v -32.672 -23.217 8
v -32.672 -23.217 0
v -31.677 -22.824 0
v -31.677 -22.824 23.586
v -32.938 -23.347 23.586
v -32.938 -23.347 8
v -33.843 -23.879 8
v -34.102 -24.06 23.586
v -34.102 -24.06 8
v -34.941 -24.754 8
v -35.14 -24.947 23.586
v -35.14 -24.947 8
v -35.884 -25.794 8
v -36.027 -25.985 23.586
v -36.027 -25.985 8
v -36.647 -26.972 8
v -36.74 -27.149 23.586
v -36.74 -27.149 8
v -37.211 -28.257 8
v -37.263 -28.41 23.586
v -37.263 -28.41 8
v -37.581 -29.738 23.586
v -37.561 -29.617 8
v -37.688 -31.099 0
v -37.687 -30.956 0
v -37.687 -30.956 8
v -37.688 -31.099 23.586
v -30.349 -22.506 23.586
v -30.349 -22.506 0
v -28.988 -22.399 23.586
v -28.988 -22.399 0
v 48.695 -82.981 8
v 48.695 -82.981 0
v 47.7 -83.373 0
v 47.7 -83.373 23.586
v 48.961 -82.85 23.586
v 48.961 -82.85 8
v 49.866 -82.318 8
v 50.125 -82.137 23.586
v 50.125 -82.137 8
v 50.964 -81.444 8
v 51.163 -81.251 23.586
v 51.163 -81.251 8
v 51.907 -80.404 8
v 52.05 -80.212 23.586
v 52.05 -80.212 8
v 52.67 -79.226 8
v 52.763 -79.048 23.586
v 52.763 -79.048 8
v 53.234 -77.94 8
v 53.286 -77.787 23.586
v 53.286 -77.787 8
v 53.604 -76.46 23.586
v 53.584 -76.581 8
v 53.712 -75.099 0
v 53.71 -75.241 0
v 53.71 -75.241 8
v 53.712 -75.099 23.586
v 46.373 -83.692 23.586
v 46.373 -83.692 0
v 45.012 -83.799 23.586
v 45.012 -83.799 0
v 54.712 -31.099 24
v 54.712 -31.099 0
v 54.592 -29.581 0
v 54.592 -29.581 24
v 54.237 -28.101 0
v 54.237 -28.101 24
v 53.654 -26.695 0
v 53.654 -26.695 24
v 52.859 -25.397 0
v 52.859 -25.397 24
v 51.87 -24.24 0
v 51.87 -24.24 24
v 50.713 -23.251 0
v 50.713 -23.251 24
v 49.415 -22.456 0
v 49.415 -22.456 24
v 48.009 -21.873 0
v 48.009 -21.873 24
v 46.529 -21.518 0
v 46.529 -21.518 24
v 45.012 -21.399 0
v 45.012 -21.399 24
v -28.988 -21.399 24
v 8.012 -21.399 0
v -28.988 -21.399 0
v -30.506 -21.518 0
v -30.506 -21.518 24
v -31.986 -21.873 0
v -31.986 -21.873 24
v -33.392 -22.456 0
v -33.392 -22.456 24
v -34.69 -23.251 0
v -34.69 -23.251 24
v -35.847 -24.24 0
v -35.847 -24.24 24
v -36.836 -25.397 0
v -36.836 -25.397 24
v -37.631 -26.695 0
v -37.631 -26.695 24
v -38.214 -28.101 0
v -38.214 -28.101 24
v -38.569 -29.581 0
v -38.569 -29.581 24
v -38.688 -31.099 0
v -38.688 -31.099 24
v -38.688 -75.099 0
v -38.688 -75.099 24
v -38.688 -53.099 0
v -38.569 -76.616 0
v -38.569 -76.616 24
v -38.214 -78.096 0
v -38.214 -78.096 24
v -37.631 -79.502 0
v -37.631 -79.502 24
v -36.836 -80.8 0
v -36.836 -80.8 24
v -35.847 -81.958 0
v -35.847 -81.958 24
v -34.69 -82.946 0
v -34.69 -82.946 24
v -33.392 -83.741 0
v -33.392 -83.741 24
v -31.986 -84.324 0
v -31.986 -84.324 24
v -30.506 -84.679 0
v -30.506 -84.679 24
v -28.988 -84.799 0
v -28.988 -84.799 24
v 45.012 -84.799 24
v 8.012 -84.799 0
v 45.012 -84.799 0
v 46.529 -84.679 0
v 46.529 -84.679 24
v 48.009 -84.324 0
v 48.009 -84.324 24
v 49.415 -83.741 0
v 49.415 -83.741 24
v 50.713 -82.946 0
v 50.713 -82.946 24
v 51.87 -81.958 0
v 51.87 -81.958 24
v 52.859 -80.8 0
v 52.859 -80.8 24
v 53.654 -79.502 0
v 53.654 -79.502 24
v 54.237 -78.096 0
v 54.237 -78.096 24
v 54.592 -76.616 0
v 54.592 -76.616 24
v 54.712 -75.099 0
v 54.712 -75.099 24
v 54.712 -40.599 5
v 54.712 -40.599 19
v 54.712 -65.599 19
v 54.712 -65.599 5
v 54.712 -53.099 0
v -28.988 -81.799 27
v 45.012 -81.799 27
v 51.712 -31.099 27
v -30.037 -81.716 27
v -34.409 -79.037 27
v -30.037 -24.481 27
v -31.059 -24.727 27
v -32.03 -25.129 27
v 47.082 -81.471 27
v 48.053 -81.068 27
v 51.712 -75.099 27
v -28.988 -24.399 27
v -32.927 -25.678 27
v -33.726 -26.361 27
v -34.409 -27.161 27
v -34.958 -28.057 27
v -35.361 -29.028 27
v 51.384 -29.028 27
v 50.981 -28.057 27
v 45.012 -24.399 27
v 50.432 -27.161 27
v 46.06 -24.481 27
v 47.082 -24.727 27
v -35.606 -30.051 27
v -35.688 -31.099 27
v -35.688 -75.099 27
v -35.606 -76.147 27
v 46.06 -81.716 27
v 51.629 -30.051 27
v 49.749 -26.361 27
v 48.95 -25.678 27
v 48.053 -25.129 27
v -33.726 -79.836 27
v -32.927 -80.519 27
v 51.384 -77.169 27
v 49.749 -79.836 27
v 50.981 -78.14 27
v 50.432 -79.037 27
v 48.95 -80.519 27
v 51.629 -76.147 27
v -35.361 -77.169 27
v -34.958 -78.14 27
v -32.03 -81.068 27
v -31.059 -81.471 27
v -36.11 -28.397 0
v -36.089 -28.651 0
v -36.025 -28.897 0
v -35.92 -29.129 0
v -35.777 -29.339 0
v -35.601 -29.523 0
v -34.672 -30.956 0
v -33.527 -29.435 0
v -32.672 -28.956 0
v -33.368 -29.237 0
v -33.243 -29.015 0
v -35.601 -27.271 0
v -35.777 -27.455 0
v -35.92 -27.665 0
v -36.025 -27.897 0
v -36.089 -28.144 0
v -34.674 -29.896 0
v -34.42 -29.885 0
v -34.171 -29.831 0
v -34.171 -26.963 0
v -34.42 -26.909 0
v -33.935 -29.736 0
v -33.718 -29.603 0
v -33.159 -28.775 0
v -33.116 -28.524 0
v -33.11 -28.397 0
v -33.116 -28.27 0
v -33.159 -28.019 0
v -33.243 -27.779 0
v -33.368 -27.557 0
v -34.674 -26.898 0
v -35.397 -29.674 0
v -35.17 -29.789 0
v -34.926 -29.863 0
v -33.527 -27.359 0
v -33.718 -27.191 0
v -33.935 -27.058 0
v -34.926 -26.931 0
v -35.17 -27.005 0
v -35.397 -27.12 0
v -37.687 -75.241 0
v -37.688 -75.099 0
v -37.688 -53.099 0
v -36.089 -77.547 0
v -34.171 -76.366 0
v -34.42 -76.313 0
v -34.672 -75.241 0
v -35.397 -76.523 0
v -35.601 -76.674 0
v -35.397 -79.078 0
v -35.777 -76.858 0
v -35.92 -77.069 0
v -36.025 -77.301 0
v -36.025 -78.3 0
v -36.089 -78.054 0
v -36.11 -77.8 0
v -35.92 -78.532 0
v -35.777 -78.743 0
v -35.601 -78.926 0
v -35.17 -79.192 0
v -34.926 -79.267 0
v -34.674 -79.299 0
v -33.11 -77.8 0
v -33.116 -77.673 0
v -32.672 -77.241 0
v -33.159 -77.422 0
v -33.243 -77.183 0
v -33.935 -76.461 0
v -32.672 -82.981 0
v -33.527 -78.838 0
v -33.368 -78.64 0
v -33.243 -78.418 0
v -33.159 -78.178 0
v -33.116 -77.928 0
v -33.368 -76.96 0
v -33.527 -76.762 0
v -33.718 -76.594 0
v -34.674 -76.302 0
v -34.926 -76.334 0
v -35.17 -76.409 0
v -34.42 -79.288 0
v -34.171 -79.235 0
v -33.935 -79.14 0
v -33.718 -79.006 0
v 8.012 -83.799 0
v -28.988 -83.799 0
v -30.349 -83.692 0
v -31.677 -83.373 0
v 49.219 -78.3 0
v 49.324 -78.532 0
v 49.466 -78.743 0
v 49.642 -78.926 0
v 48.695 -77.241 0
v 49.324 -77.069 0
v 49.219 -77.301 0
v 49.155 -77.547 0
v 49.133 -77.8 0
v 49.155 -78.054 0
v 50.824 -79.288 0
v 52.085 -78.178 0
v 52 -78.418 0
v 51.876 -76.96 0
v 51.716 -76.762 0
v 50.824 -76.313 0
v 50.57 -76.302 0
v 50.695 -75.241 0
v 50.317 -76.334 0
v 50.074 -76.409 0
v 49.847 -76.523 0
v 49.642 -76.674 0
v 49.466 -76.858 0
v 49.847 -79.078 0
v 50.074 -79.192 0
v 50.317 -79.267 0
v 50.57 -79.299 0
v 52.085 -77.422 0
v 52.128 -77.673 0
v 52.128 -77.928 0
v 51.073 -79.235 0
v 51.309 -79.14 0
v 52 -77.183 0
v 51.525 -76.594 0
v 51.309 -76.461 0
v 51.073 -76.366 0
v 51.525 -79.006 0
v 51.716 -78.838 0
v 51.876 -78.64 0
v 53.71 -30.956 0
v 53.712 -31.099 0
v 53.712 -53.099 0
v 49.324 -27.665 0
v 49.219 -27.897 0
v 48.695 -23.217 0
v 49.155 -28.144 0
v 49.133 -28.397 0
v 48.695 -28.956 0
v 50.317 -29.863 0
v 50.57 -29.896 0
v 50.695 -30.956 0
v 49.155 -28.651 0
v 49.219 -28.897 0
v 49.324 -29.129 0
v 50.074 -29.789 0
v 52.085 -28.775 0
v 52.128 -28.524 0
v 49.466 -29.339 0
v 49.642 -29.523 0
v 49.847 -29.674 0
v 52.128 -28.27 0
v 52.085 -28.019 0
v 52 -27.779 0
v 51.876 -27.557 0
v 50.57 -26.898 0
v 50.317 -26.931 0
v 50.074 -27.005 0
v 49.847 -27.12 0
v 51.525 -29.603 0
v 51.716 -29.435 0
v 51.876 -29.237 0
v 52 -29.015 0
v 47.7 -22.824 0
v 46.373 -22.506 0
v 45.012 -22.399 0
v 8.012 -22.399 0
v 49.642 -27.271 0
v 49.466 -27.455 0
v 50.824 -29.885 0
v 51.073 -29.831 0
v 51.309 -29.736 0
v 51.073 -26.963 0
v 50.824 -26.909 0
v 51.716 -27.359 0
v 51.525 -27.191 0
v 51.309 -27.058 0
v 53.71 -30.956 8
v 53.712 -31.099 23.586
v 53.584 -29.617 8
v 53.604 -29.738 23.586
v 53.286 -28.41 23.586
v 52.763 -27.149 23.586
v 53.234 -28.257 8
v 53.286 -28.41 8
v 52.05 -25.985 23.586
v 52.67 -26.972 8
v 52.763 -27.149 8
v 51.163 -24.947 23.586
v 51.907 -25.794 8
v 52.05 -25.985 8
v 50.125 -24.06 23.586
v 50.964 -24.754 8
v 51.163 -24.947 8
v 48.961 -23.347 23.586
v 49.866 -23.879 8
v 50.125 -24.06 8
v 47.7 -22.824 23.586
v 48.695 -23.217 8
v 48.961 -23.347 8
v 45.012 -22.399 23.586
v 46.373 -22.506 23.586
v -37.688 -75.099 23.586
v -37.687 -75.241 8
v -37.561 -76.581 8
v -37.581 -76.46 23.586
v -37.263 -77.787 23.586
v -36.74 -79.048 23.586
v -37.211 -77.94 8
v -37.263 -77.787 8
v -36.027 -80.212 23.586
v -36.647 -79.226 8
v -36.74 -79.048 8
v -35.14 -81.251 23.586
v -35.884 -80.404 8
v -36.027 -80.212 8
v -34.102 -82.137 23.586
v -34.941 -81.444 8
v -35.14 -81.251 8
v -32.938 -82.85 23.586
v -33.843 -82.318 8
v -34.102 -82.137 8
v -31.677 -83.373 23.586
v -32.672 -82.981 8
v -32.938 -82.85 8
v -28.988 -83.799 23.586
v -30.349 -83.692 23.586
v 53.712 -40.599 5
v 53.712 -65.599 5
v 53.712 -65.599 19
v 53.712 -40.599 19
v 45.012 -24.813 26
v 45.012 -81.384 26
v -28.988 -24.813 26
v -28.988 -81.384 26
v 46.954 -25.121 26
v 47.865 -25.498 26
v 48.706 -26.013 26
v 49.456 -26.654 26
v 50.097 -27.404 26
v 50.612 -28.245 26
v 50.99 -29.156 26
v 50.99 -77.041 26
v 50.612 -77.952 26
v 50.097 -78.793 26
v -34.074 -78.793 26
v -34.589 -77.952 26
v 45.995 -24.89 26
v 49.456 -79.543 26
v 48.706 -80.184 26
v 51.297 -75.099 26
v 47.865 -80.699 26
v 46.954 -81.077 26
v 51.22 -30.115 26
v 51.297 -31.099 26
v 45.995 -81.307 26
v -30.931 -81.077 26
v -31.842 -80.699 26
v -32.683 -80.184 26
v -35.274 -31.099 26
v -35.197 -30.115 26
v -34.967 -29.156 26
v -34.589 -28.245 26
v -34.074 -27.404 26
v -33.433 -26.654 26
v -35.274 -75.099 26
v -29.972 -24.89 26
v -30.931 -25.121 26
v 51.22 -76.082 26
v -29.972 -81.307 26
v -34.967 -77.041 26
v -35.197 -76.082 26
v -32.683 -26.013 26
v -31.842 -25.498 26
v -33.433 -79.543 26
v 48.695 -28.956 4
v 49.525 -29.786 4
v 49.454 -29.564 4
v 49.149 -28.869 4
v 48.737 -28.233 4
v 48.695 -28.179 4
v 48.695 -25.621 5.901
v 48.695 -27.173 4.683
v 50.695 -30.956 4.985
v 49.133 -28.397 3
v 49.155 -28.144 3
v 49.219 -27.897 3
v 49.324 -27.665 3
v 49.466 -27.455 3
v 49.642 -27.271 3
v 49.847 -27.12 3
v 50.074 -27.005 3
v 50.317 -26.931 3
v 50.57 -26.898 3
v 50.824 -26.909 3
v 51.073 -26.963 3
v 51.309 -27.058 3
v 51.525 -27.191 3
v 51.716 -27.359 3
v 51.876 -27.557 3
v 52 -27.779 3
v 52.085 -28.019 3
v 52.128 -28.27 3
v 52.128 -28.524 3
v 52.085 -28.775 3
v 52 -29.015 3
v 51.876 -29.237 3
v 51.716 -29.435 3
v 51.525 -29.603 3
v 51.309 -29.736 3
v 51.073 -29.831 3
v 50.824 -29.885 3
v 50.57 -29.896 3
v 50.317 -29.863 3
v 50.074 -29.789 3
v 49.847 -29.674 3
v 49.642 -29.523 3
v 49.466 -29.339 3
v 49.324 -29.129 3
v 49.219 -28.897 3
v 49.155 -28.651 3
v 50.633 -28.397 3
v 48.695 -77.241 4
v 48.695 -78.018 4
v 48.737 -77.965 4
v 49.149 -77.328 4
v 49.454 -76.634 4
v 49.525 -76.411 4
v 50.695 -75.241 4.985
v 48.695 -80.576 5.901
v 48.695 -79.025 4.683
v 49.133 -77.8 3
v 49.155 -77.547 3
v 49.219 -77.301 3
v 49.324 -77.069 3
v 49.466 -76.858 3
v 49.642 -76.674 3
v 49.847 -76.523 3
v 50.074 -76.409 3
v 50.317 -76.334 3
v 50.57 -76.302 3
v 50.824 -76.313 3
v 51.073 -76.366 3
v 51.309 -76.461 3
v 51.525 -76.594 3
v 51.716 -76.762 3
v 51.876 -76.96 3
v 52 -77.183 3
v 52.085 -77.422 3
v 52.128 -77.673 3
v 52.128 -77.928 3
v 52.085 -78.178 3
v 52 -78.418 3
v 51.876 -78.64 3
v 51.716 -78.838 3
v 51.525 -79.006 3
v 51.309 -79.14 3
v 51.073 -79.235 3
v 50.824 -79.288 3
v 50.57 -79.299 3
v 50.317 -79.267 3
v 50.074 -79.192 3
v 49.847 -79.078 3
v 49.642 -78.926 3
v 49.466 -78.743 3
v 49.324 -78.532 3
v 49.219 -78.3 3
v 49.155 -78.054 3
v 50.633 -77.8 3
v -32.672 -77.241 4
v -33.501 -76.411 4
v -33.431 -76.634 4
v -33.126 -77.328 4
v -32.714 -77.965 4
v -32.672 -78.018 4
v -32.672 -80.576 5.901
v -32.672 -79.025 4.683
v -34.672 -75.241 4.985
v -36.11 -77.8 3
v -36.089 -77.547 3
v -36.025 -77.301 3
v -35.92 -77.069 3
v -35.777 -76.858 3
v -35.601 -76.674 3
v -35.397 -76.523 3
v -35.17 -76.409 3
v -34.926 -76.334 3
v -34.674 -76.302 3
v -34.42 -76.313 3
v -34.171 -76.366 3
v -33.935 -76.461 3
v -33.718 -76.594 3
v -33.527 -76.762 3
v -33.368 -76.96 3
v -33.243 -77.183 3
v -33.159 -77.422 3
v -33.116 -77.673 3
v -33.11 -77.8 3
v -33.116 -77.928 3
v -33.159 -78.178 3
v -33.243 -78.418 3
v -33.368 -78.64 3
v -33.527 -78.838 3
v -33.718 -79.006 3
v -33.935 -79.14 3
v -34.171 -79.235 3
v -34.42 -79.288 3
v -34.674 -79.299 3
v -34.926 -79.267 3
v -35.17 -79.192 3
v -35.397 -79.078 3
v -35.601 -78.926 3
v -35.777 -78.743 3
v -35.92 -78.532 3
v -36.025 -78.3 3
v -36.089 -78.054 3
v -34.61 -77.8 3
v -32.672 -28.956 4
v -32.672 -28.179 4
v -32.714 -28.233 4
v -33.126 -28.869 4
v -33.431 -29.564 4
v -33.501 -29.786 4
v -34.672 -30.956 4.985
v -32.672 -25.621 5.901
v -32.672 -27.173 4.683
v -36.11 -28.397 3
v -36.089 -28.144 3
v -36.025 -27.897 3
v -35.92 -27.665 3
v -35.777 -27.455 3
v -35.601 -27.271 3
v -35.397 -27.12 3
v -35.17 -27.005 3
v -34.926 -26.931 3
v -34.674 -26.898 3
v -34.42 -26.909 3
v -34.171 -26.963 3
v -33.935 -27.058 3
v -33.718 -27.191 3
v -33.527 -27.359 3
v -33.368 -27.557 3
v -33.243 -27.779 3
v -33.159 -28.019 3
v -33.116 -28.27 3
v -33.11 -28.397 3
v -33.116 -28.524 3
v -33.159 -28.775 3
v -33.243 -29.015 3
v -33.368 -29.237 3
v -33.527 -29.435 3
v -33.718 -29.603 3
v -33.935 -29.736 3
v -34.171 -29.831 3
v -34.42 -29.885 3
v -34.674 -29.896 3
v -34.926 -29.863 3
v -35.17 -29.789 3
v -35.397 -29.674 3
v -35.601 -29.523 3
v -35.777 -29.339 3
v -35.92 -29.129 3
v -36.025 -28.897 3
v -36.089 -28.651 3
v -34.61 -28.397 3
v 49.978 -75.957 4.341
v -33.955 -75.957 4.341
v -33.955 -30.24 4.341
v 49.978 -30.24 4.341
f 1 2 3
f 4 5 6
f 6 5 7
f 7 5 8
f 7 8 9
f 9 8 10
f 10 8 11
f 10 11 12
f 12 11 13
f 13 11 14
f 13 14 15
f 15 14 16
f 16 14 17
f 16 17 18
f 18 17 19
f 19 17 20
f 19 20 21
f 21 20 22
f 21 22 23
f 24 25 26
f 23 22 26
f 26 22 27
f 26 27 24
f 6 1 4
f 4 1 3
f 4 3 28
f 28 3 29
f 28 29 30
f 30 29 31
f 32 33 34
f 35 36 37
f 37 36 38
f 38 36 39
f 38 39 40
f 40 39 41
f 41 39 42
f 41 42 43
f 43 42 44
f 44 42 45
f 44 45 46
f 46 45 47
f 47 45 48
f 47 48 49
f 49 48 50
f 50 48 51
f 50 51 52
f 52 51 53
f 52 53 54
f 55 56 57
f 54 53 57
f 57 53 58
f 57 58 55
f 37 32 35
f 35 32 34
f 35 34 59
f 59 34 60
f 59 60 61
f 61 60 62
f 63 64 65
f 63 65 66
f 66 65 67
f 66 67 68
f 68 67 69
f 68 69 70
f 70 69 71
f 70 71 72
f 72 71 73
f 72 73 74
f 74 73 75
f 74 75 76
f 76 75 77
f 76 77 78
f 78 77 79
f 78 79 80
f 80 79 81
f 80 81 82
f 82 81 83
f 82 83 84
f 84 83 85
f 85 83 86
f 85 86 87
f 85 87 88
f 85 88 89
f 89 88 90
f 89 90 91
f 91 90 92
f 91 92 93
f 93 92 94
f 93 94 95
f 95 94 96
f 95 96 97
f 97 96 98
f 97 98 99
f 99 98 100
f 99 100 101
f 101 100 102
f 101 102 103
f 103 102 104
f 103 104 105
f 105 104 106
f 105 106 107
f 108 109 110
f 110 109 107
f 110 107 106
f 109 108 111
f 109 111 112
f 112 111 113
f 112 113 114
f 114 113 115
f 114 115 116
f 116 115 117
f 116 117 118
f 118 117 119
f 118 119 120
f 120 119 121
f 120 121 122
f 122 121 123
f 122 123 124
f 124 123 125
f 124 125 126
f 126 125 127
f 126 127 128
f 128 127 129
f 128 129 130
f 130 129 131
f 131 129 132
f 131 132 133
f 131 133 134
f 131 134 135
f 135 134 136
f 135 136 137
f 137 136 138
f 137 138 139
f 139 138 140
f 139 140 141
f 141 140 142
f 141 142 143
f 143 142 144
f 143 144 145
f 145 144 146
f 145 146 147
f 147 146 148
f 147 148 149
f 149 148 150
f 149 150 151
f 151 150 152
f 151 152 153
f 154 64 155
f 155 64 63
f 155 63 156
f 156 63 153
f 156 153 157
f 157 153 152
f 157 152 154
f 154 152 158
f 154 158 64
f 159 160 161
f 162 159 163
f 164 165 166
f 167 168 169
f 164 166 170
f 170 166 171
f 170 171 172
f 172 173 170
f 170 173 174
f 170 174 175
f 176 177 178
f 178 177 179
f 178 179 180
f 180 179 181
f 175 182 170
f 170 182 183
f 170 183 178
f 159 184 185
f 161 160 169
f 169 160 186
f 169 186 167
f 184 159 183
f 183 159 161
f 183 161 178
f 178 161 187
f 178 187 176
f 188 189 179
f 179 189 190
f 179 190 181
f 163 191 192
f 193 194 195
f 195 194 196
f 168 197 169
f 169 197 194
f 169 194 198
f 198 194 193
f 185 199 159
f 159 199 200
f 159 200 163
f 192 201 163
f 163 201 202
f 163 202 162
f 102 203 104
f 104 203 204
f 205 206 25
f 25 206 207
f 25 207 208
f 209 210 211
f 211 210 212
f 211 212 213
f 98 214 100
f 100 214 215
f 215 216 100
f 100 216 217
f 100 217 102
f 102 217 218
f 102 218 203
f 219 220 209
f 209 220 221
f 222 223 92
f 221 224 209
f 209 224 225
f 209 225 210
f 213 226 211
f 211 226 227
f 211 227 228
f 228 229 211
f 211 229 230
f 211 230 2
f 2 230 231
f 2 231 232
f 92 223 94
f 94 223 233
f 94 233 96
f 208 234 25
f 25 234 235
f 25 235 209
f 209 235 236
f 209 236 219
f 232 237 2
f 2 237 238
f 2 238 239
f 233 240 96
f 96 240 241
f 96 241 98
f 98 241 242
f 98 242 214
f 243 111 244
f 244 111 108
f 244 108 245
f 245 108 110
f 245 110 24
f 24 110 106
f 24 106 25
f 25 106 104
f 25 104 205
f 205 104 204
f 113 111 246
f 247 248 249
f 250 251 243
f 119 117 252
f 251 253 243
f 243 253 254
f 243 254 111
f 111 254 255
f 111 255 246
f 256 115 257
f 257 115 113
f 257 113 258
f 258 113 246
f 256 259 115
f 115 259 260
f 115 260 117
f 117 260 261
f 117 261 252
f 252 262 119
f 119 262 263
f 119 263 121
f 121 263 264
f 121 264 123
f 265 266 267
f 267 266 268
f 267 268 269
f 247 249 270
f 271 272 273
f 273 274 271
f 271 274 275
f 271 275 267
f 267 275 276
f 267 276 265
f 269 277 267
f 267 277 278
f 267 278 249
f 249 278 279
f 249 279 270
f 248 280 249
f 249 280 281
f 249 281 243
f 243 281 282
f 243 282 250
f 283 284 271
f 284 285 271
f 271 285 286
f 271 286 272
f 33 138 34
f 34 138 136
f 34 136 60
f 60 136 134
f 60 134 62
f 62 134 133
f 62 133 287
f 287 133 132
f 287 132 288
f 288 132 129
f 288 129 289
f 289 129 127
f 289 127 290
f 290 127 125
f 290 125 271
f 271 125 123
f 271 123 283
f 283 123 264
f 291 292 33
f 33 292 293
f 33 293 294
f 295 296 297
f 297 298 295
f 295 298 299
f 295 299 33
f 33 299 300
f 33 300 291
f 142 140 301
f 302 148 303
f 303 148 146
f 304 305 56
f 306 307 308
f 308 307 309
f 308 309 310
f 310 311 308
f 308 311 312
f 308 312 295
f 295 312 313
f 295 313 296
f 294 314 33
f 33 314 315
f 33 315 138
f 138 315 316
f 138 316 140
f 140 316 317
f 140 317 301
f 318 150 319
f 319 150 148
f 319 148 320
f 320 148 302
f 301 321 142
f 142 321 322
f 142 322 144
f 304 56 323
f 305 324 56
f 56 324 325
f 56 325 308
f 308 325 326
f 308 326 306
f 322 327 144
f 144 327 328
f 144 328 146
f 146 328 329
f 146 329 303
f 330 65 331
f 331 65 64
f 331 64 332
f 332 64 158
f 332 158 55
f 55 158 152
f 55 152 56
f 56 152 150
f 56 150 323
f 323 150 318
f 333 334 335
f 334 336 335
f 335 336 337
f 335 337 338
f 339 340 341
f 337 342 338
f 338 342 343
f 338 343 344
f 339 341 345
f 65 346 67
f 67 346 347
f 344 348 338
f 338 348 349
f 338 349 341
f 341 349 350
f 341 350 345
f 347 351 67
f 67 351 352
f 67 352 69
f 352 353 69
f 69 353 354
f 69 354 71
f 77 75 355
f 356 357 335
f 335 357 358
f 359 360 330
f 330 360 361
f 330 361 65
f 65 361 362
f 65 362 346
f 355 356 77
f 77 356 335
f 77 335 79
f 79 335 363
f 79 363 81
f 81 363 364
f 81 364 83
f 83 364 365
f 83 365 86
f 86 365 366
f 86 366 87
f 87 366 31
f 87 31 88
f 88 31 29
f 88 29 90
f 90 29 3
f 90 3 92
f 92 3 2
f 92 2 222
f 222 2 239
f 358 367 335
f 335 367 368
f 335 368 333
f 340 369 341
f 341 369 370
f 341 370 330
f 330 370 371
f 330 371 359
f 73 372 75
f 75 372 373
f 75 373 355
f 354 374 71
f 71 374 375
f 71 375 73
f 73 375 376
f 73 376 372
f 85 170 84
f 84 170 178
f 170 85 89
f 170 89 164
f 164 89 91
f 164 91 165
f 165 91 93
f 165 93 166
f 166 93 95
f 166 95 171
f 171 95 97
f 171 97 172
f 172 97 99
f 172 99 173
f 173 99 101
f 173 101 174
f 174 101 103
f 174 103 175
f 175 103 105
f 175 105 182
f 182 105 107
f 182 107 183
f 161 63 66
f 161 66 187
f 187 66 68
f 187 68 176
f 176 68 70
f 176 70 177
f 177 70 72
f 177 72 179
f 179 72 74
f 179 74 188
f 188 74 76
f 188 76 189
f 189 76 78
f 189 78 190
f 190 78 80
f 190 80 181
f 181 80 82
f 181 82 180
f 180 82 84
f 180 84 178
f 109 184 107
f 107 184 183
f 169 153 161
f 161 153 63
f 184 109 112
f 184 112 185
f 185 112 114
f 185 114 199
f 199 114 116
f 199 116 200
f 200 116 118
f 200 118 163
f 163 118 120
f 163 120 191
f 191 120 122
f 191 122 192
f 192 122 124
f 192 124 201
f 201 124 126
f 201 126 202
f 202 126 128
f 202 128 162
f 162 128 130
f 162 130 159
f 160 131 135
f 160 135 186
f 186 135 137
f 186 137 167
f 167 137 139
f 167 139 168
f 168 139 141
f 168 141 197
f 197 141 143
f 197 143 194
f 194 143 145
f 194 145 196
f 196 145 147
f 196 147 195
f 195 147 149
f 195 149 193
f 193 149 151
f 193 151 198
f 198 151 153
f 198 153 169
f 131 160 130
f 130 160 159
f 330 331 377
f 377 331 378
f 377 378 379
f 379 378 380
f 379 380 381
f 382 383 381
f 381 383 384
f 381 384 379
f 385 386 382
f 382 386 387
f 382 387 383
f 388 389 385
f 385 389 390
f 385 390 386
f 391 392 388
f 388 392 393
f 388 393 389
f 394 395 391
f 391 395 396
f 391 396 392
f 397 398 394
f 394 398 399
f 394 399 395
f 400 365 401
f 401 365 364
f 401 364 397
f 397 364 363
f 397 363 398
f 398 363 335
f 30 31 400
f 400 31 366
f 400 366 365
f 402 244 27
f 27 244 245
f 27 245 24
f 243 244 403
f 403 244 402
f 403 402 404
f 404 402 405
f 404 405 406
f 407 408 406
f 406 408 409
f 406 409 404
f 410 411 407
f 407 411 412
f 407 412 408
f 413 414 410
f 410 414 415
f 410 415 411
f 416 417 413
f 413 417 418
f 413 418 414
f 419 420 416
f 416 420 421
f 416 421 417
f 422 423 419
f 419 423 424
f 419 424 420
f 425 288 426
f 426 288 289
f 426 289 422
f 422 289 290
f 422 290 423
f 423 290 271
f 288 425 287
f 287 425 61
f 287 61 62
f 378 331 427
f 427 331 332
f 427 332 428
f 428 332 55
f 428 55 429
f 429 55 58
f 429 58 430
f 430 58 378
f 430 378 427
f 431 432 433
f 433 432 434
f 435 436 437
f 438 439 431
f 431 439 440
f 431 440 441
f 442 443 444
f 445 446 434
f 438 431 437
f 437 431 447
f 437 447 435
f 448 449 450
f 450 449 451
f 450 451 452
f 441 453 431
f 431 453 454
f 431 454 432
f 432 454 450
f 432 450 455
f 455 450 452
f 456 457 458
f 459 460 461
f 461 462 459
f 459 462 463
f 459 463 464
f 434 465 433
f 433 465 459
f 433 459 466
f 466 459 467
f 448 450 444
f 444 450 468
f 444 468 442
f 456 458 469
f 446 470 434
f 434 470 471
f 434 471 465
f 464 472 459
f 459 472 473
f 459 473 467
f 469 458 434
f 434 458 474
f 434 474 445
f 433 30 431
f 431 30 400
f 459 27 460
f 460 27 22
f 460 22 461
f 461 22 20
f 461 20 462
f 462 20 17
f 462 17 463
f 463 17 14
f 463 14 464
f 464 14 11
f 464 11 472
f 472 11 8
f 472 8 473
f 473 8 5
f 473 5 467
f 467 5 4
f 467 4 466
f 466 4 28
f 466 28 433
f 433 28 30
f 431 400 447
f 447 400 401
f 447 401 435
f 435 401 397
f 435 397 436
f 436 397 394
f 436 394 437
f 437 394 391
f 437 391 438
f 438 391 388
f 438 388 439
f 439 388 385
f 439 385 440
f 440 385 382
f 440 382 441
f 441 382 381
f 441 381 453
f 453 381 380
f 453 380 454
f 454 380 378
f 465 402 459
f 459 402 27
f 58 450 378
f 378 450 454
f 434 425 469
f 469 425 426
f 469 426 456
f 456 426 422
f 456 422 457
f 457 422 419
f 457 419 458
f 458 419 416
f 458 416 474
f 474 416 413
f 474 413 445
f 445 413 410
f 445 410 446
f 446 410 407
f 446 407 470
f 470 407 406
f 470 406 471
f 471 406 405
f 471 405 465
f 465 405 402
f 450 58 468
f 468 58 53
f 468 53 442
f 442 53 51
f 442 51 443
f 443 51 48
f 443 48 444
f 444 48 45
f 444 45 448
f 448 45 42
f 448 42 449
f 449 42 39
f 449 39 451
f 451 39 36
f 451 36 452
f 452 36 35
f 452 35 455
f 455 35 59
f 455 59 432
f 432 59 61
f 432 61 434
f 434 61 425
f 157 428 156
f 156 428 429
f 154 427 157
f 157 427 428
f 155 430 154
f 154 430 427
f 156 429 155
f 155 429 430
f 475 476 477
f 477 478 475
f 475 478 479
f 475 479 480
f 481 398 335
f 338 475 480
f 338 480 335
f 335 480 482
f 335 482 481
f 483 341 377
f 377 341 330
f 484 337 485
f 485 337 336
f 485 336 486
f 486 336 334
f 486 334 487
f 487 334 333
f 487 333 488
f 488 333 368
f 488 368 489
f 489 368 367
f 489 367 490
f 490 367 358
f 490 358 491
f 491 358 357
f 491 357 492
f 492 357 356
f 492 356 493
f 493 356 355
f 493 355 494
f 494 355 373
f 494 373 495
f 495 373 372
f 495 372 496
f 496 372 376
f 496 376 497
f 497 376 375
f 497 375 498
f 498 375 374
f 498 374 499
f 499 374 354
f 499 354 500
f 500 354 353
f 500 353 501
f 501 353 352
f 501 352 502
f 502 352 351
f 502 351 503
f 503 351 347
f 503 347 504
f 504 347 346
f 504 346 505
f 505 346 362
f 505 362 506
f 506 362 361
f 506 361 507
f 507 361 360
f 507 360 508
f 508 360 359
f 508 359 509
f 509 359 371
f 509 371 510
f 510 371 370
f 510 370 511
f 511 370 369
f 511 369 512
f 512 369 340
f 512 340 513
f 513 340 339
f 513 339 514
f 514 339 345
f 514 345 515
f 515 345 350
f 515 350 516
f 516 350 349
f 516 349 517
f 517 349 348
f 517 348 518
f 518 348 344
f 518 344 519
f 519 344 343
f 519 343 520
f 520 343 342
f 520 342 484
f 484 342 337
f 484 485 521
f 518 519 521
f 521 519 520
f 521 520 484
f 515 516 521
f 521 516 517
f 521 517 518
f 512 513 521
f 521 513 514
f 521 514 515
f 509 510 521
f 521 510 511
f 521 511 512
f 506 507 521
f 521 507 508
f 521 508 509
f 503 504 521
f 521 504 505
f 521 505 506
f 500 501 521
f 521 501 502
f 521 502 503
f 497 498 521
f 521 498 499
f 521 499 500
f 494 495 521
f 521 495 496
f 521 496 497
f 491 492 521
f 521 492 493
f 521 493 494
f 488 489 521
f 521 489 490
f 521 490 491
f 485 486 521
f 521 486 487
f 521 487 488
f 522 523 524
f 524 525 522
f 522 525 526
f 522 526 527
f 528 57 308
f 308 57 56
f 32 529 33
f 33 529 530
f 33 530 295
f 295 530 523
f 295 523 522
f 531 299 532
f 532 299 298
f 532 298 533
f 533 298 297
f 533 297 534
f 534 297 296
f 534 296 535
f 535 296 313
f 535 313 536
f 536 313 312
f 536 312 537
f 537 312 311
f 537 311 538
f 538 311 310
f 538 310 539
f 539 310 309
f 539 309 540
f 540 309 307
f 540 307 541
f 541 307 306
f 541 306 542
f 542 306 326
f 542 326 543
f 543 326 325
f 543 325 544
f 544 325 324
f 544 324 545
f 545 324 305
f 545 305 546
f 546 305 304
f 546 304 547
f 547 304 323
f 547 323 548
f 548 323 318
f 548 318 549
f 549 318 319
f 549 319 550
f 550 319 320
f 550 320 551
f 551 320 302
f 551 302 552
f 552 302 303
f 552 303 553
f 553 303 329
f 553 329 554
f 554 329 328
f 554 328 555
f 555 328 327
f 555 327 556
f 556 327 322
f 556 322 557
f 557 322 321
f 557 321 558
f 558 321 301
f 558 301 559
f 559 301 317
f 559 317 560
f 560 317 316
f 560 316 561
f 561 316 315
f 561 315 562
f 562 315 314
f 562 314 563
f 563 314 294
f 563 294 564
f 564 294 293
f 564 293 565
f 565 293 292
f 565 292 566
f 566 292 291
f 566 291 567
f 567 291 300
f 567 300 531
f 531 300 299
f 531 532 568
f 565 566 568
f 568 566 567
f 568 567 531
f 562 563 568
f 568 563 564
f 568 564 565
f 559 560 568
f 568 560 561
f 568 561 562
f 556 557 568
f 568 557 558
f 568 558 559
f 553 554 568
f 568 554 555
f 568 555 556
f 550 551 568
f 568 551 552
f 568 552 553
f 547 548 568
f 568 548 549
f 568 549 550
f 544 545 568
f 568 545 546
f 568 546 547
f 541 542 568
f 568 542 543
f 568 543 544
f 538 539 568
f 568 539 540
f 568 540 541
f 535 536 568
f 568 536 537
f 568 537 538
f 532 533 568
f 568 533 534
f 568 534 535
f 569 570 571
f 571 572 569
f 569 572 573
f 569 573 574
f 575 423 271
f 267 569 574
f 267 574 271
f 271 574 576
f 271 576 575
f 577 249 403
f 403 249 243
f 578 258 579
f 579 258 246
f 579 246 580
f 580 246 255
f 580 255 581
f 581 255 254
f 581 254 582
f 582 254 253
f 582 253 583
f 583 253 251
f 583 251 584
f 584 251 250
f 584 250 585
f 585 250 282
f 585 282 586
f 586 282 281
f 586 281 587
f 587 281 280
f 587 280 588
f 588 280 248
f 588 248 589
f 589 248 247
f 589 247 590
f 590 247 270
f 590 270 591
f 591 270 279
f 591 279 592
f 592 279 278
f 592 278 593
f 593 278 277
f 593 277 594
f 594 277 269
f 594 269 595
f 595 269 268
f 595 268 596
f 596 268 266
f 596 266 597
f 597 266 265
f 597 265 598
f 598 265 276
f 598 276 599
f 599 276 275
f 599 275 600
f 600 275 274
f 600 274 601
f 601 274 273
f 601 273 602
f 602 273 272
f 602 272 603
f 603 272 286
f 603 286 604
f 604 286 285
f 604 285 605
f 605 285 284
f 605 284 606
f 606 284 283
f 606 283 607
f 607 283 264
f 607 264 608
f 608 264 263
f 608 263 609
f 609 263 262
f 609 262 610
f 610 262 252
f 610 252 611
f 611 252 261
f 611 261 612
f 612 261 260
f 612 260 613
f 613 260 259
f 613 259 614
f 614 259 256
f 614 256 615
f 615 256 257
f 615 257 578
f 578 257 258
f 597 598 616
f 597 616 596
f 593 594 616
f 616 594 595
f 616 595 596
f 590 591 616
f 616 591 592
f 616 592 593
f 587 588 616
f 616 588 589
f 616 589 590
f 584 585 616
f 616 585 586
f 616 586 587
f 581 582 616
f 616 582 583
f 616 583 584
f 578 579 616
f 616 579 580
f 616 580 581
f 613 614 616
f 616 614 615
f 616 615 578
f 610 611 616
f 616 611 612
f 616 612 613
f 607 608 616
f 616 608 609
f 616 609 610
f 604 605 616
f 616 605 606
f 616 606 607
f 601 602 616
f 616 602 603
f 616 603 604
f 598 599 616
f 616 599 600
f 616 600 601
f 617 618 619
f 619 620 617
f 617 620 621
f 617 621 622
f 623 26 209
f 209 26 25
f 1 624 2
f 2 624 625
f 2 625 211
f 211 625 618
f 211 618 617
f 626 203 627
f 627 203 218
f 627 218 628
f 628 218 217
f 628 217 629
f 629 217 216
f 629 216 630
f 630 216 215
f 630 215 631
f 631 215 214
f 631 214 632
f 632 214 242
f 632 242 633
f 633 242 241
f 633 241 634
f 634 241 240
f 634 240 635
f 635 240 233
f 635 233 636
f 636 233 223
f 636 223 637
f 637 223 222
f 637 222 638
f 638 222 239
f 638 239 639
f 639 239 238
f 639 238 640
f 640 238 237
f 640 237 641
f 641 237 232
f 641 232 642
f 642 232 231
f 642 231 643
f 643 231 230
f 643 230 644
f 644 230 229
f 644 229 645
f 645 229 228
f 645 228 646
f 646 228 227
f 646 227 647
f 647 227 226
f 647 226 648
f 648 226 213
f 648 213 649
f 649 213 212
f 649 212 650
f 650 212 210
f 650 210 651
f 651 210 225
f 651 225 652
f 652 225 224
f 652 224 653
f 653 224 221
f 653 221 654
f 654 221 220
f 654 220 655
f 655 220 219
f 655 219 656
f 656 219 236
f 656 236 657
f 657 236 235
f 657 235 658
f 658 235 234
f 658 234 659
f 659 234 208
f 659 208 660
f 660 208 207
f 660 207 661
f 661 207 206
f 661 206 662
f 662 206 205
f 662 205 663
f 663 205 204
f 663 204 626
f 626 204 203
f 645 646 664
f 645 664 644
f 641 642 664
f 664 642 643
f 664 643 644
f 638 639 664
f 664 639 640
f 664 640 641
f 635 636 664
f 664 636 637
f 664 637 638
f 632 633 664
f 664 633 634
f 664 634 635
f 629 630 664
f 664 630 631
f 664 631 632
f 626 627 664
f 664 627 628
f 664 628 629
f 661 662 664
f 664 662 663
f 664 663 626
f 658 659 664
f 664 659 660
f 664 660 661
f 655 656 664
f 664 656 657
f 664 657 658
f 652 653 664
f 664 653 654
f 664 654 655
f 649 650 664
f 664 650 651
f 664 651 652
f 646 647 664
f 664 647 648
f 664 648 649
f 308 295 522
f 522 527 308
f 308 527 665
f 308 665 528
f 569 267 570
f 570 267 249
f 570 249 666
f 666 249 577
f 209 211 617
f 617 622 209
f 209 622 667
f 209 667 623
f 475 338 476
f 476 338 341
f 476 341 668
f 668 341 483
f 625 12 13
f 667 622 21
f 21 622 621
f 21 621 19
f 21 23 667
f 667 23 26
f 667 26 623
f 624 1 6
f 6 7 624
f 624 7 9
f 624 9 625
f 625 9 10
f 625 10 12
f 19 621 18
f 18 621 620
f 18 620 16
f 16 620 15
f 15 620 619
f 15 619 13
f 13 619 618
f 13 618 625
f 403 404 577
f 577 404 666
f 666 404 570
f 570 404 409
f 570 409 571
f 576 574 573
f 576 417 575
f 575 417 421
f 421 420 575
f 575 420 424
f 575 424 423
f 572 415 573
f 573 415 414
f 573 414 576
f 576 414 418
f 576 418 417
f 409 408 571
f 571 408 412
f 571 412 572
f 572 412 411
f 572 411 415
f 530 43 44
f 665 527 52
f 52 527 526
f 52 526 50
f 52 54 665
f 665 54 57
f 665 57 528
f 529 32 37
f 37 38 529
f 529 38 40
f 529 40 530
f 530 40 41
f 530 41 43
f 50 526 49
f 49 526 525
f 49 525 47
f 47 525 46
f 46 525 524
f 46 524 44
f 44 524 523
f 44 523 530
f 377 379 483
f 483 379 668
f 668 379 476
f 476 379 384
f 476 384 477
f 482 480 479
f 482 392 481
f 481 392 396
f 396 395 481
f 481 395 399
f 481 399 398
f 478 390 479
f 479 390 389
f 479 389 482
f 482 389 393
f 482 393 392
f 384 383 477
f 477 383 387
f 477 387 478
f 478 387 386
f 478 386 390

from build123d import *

# Parameters (mm, degrees)
BOSS_EXTRUDE1_DEPTH     = 27
CHAMFER1_SIZE           = 3
SHELL1_T                = -1
CUT_EXTRUDE1_REACH      = 131.009
SKETCH2_W               = 14
SKETCH2_H               = 25
BOSS_EXTRUDE2_DEPTH     = 4
SKETCH7_R               = 1.5
CUT_EXTRUDE2_DEPTH      = 3
MIRROR2_COPY_1_DEPTH    = 4
MIRROR2_COPY_2_SKETCH_R = 1.5
MIRROR2_COPY_2_DEPTH    = 3
CHAMFER2_SIZE           = 2
CHAMFER3_SIZE           = 4


with BuildPart() as part:
    # Sketch1 → Boss-Extrude1 (new body)
    with BuildSketch(Plane.XY):
        with BuildLine():
            Line((54.711561383, -75.098685124), (54.711561383, -31.098685124))
            ThreePointArc((54.711561383, -31.098685124), (51.87049716, -24.239749346), (45.011561383, -21.398685124))
            Line((45.011561383, -21.398685124), (-28.988438617, -21.398685124))
            ThreePointArc((-28.988438617, -21.398685124), (-35.847374395, -24.239749346), (-38.688438617, -31.098685124))
            Line((-38.688438617, -31.098685124), (-38.688438617, -75.098685124))
            ThreePointArc((-38.688438617, -75.098685124), (-35.847374395, -81.957620901), (-28.988438617, -84.798685124))
            Line((-28.988438617, -84.798685124), (45.011561383, -84.798685124))
            ThreePointArc((45.011561383, -84.798685124), (51.87049716, -81.957620901), (54.711561383, -75.098685124))
        make_face()
    extrude(amount=BOSS_EXTRUDE1_DEPTH)

    # Chamfer1
    chamfer1_edges = [part.edges().sort_by_distance(p)[0] for p in [
        (-35.847374395, -24.239749346, 27),
        (-38.688438617, -53.098685124, 27),
        (-35.847374395, -81.957620901, 27),
        (8.011561383, -84.798685124, 27),
        (51.87049716, -81.957620901, 27),
        (54.711561383, -53.098685124, 27),
        (51.87049716, -24.239749346, 27),
        (8.011561383, -21.398685124, 27),
    ]]
    chamfer(chamfer1_edges, length=CHAMFER1_SIZE)

    # Shell1
    shell1_openings = [part.faces().sort_by_distance(p)[0] for p in [
        (8.011561383, -53.098685124, 0),
    ]]
    offset(amount=SHELL1_T, openings=shell1_openings, kind=Kind.INTERSECTION)

    # Sketch2 → Cut-Extrude1 (cut, up to next)
    with BuildSketch(Plane(origin=(54.711561383, 0, 0), x_dir=(0, 0, -1), z_dir=(1, 0, 0)), mode=Mode.PRIVATE) as cut_extrude1_sk1:
        with Locations((-12, -53.098685124)):
            Rectangle(SKETCH2_W, SKETCH2_H)
    cut_extrude1_tool1 = extrude(cut_extrude1_sk1.sketch, amount=-CUT_EXTRUDE1_REACH, mode=Mode.PRIVATE) & part.part
    add(cut_extrude1_tool1.solids().sort_by_distance((54.711561, -53.098685, 12))[0], mode=Mode.SUBTRACT)

    # Sketch3 → Boss-Extrude2 (add)
    with BuildSketch(Plane(origin=(0, 0, 0), x_dir=(-1, 0, 0), z_dir=(0, 0, -1))):
        with BuildLine():
            Line((-54.118192185, -30.956291213), (-48.694716552, -30.956291213))
            Line((-48.694716552, -30.956291213), (-48.694716552, -23.033750656))
            ThreePointArc((-48.694716552, -23.033750656), (-52.633018075, -26.155361191), (-54.118192185, -30.956291213))
        make_face()
    boss_extrude2 = extrude(amount=-BOSS_EXTRUDE2_DEPTH)

    # Sketch7 → Cut-Extrude2 (cut)
    with BuildSketch(Plane(origin=(0, 0, 0), x_dir=(-1, 0, 0), z_dir=(0, 0, -1))):
        with Locations((-50.633416054, -28.397006104)):
            Circle(SKETCH7_R)
    cut_extrude2 = extrude(amount=-CUT_EXTRUDE2_DEPTH, mode=Mode.SUBTRACT)

    # Mirror1: Boss-Extrude2, Cut-Extrude2 across plane
    add(boss_extrude2.mirror(Plane(origin=(0, -53.098685124, 0), x_dir=(0, 0, 1), z_dir=(0, -1, 0))))
    add(cut_extrude2.mirror(Plane(origin=(0, -53.098685124, 0), x_dir=(0, 0, 1), z_dir=(0, -1, 0))), mode=Mode.SUBTRACT)

    # Mirror2: Boss-Extrude2, Cut-Extrude2 across plane
    add(boss_extrude2.mirror(Plane.ZY.offset(-8.011561383)))
    add(cut_extrude2.mirror(Plane.ZY.offset(-8.011561383)), mode=Mode.SUBTRACT)

    # Mirror2 copy 1 sketch → Mirror2 copy 1 (add)
    with BuildSketch(Plane(origin=(16.023122766, -106.197370247, 0), x_dir=(1, 0, 0), z_dir=(0, 0, -1))):
        with BuildLine():
            Line((-54.118192185, -30.956291213), (-48.694716552, -30.956291213))
            Line((-48.694716552, -30.956291213), (-48.694716552, -23.033750656))
            ThreePointArc((-48.694716552, -23.033750656), (-52.633018075, -26.155361191), (-54.118192185, -30.956291213))
        make_face()
    extrude(amount=-MIRROR2_COPY_1_DEPTH)

    # Mirror2 copy 2 sketch → Mirror2 copy 2 (cut)
    with BuildSketch(Plane(origin=(16.023122766, -106.197370247, 0), x_dir=(1, 0, 0), z_dir=(0, 0, -1))):
        with Locations((-50.633416054, -28.397006104)):
            Circle(MIRROR2_COPY_2_SKETCH_R)
    extrude(amount=-MIRROR2_COPY_2_DEPTH, mode=Mode.SUBTRACT)

    # Chamfer2
    chamfer2_edges = [part.edges().sort_by_distance(p)[0] for p in [
        (48.694716552, -30.956291213, 2),
        (48.694716552, -75.241079034, 2),
        (-32.671593786, -75.241079034, 2),
        (-32.671593786, -30.956291213, 2),
    ]]
    chamfer(chamfer2_edges, length=CHAMFER2_SIZE)

    # Chamfer3
    # the kernel refuses this chamfer: 4 mm, written as the material it adds along each edge
    with BuildSketch(Plane(origin=(-28.988438617, -31.098685124, 4), x_dir=(-0.39359677864958253, -0.9192831858772744, 0), z_dir=(0.9192831858772744, -0.39359677864958253, 0))) as chamfer3_piece_1_section:
        Polygon((8.7, -CHAMFER3_SIZE), (8.7 - CHAMFER3_SIZE, 0), (8.7, 0), align=None)
    chamfer3_piece_1 = revolve(axis=Axis((-28.988438617, -31.098685124, 4), (0, 0, -1)), revolution_arc=199.53449135, mode=Mode.PRIVATE)
    chamfer3_piece_1 = split(chamfer3_piece_1, bisect_by=Plane(origin=(-32.671593786, -27.350508509, 5.442527719), z_dir=(-1, 0, 0)), keep=Keep.TOP, mode=Mode.PRIVATE)
    chamfer3_piece_1 = split(chamfer3_piece_1, bisect_by=Plane(origin=(-35.212045354, -30.956291213, 5.442527719), z_dir=(0, 1, 0)), keep=Keep.TOP, mode=Mode.PRIVATE)
    chamfer3_piece_1 = split(chamfer3_piece_1, bisect_by=Plane(origin=(-33.138928218, -29.423625644, 5.442527719), z_dir=(-0.7071067811865476, 0.7071067811865476, 0)), keep=Keep.TOP, mode=Mode.PRIVATE)
    add(chamfer3_piece_1)
    with BuildSketch(Plane(origin=(-28.988438617, -75.098685124, 4), x_dir=(0.6783261272249539, -0.7347609578114475, 0), z_dir=(0.7347609578114475, 0.6783261272249539, 0))) as chamfer3_piece_2_section:
        Polygon((8.7, -CHAMFER3_SIZE), (8.7 - CHAMFER3_SIZE, 0), (8.7, 0), align=None)
    chamfer3_piece_2 = revolve(axis=Axis((-28.988438617, -75.098685124, 4), (0, 0, -1)), revolution_arc=199.53449135, mode=Mode.PRIVATE)
    chamfer3_piece_2 = split(chamfer3_piece_2, bisect_by=Plane(origin=(-35.212045354, -75.241079034, 5.44252772), z_dir=(0, -1, 0)), keep=Keep.TOP, mode=Mode.PRIVATE)
    chamfer3_piece_2 = split(chamfer3_piece_2, bisect_by=Plane(origin=(-32.671593786, -78.846861739, 5.44252772), z_dir=(-1, 0, 0)), keep=Keep.TOP, mode=Mode.PRIVATE)
    chamfer3_piece_2 = split(chamfer3_piece_2, bisect_by=Plane(origin=(-33.138928218, -76.773744603, 5.44252772), z_dir=(-0.7071067811865476, -0.7071067811865476, 0)), keep=Keep.TOP, mode=Mode.PRIVATE)
    add(chamfer3_piece_2)
    with BuildSketch(Plane(origin=(45.011561383, -75.098685124, 4), x_dir=(0.39359677864958265, 0.9192831858772744, 0), z_dir=(-0.9192831858772744, 0.39359677864958265, 0))) as chamfer3_piece_3_section:
        Polygon((8.7, -CHAMFER3_SIZE), (8.7 - CHAMFER3_SIZE, 0), (8.7, 0), align=None)
    chamfer3_piece_3 = revolve(axis=Axis((45.011561383, -75.098685124, 4), (0, 0, -1)), revolution_arc=199.53449135, mode=Mode.PRIVATE)
    chamfer3_piece_3 = split(chamfer3_piece_3, bisect_by=Plane(origin=(48.694716552, -78.846861739, 5.44252772), z_dir=(1, 0, 0)), keep=Keep.TOP, mode=Mode.PRIVATE)
    chamfer3_piece_3 = split(chamfer3_piece_3, bisect_by=Plane(origin=(51.23516812, -75.241079034, 5.44252772), z_dir=(0, -1, 0)), keep=Keep.TOP, mode=Mode.PRIVATE)
    chamfer3_piece_3 = split(chamfer3_piece_3, bisect_by=Plane(origin=(49.162050984, -76.773744603, 5.44252772), z_dir=(0.7071067811865476, -0.7071067811865476, 0)), keep=Keep.TOP, mode=Mode.PRIVATE)
    add(chamfer3_piece_3)
    with BuildSketch(Plane(origin=(45.011561383, -31.098685124, 4), x_dir=(-0.6783261272249526, 0.7347609578114488, 0), z_dir=(-0.7347609578114488, -0.6783261272249526, 0))) as chamfer3_piece_4_section:
        Polygon((8.7, -CHAMFER3_SIZE), (8.7 - CHAMFER3_SIZE, 0), (8.7, 0), align=None)
    chamfer3_piece_4 = revolve(axis=Axis((45.011561383, -31.098685124, 4), (0, 0, -1)), revolution_arc=199.53449135, mode=Mode.PRIVATE)
    chamfer3_piece_4 = split(chamfer3_piece_4, bisect_by=Plane(origin=(51.23516812, -30.956291213, 5.44252772), z_dir=(0, 1, 0)), keep=Keep.TOP, mode=Mode.PRIVATE)
    chamfer3_piece_4 = split(chamfer3_piece_4, bisect_by=Plane(origin=(49.162050984, -29.423625644, 5.44252772), z_dir=(0.7071067811865476, 0.7071067811865476, 0)), keep=Keep.TOP, mode=Mode.PRIVATE)
    chamfer3_piece_4 = split(chamfer3_piece_4, bisect_by=Plane(origin=(48.694716552, -27.350508508, 5.44252772), z_dir=(1, 0, 0)), keep=Keep.TOP, mode=Mode.PRIVATE)
    add(chamfer3_piece_4)


solid = part.part
